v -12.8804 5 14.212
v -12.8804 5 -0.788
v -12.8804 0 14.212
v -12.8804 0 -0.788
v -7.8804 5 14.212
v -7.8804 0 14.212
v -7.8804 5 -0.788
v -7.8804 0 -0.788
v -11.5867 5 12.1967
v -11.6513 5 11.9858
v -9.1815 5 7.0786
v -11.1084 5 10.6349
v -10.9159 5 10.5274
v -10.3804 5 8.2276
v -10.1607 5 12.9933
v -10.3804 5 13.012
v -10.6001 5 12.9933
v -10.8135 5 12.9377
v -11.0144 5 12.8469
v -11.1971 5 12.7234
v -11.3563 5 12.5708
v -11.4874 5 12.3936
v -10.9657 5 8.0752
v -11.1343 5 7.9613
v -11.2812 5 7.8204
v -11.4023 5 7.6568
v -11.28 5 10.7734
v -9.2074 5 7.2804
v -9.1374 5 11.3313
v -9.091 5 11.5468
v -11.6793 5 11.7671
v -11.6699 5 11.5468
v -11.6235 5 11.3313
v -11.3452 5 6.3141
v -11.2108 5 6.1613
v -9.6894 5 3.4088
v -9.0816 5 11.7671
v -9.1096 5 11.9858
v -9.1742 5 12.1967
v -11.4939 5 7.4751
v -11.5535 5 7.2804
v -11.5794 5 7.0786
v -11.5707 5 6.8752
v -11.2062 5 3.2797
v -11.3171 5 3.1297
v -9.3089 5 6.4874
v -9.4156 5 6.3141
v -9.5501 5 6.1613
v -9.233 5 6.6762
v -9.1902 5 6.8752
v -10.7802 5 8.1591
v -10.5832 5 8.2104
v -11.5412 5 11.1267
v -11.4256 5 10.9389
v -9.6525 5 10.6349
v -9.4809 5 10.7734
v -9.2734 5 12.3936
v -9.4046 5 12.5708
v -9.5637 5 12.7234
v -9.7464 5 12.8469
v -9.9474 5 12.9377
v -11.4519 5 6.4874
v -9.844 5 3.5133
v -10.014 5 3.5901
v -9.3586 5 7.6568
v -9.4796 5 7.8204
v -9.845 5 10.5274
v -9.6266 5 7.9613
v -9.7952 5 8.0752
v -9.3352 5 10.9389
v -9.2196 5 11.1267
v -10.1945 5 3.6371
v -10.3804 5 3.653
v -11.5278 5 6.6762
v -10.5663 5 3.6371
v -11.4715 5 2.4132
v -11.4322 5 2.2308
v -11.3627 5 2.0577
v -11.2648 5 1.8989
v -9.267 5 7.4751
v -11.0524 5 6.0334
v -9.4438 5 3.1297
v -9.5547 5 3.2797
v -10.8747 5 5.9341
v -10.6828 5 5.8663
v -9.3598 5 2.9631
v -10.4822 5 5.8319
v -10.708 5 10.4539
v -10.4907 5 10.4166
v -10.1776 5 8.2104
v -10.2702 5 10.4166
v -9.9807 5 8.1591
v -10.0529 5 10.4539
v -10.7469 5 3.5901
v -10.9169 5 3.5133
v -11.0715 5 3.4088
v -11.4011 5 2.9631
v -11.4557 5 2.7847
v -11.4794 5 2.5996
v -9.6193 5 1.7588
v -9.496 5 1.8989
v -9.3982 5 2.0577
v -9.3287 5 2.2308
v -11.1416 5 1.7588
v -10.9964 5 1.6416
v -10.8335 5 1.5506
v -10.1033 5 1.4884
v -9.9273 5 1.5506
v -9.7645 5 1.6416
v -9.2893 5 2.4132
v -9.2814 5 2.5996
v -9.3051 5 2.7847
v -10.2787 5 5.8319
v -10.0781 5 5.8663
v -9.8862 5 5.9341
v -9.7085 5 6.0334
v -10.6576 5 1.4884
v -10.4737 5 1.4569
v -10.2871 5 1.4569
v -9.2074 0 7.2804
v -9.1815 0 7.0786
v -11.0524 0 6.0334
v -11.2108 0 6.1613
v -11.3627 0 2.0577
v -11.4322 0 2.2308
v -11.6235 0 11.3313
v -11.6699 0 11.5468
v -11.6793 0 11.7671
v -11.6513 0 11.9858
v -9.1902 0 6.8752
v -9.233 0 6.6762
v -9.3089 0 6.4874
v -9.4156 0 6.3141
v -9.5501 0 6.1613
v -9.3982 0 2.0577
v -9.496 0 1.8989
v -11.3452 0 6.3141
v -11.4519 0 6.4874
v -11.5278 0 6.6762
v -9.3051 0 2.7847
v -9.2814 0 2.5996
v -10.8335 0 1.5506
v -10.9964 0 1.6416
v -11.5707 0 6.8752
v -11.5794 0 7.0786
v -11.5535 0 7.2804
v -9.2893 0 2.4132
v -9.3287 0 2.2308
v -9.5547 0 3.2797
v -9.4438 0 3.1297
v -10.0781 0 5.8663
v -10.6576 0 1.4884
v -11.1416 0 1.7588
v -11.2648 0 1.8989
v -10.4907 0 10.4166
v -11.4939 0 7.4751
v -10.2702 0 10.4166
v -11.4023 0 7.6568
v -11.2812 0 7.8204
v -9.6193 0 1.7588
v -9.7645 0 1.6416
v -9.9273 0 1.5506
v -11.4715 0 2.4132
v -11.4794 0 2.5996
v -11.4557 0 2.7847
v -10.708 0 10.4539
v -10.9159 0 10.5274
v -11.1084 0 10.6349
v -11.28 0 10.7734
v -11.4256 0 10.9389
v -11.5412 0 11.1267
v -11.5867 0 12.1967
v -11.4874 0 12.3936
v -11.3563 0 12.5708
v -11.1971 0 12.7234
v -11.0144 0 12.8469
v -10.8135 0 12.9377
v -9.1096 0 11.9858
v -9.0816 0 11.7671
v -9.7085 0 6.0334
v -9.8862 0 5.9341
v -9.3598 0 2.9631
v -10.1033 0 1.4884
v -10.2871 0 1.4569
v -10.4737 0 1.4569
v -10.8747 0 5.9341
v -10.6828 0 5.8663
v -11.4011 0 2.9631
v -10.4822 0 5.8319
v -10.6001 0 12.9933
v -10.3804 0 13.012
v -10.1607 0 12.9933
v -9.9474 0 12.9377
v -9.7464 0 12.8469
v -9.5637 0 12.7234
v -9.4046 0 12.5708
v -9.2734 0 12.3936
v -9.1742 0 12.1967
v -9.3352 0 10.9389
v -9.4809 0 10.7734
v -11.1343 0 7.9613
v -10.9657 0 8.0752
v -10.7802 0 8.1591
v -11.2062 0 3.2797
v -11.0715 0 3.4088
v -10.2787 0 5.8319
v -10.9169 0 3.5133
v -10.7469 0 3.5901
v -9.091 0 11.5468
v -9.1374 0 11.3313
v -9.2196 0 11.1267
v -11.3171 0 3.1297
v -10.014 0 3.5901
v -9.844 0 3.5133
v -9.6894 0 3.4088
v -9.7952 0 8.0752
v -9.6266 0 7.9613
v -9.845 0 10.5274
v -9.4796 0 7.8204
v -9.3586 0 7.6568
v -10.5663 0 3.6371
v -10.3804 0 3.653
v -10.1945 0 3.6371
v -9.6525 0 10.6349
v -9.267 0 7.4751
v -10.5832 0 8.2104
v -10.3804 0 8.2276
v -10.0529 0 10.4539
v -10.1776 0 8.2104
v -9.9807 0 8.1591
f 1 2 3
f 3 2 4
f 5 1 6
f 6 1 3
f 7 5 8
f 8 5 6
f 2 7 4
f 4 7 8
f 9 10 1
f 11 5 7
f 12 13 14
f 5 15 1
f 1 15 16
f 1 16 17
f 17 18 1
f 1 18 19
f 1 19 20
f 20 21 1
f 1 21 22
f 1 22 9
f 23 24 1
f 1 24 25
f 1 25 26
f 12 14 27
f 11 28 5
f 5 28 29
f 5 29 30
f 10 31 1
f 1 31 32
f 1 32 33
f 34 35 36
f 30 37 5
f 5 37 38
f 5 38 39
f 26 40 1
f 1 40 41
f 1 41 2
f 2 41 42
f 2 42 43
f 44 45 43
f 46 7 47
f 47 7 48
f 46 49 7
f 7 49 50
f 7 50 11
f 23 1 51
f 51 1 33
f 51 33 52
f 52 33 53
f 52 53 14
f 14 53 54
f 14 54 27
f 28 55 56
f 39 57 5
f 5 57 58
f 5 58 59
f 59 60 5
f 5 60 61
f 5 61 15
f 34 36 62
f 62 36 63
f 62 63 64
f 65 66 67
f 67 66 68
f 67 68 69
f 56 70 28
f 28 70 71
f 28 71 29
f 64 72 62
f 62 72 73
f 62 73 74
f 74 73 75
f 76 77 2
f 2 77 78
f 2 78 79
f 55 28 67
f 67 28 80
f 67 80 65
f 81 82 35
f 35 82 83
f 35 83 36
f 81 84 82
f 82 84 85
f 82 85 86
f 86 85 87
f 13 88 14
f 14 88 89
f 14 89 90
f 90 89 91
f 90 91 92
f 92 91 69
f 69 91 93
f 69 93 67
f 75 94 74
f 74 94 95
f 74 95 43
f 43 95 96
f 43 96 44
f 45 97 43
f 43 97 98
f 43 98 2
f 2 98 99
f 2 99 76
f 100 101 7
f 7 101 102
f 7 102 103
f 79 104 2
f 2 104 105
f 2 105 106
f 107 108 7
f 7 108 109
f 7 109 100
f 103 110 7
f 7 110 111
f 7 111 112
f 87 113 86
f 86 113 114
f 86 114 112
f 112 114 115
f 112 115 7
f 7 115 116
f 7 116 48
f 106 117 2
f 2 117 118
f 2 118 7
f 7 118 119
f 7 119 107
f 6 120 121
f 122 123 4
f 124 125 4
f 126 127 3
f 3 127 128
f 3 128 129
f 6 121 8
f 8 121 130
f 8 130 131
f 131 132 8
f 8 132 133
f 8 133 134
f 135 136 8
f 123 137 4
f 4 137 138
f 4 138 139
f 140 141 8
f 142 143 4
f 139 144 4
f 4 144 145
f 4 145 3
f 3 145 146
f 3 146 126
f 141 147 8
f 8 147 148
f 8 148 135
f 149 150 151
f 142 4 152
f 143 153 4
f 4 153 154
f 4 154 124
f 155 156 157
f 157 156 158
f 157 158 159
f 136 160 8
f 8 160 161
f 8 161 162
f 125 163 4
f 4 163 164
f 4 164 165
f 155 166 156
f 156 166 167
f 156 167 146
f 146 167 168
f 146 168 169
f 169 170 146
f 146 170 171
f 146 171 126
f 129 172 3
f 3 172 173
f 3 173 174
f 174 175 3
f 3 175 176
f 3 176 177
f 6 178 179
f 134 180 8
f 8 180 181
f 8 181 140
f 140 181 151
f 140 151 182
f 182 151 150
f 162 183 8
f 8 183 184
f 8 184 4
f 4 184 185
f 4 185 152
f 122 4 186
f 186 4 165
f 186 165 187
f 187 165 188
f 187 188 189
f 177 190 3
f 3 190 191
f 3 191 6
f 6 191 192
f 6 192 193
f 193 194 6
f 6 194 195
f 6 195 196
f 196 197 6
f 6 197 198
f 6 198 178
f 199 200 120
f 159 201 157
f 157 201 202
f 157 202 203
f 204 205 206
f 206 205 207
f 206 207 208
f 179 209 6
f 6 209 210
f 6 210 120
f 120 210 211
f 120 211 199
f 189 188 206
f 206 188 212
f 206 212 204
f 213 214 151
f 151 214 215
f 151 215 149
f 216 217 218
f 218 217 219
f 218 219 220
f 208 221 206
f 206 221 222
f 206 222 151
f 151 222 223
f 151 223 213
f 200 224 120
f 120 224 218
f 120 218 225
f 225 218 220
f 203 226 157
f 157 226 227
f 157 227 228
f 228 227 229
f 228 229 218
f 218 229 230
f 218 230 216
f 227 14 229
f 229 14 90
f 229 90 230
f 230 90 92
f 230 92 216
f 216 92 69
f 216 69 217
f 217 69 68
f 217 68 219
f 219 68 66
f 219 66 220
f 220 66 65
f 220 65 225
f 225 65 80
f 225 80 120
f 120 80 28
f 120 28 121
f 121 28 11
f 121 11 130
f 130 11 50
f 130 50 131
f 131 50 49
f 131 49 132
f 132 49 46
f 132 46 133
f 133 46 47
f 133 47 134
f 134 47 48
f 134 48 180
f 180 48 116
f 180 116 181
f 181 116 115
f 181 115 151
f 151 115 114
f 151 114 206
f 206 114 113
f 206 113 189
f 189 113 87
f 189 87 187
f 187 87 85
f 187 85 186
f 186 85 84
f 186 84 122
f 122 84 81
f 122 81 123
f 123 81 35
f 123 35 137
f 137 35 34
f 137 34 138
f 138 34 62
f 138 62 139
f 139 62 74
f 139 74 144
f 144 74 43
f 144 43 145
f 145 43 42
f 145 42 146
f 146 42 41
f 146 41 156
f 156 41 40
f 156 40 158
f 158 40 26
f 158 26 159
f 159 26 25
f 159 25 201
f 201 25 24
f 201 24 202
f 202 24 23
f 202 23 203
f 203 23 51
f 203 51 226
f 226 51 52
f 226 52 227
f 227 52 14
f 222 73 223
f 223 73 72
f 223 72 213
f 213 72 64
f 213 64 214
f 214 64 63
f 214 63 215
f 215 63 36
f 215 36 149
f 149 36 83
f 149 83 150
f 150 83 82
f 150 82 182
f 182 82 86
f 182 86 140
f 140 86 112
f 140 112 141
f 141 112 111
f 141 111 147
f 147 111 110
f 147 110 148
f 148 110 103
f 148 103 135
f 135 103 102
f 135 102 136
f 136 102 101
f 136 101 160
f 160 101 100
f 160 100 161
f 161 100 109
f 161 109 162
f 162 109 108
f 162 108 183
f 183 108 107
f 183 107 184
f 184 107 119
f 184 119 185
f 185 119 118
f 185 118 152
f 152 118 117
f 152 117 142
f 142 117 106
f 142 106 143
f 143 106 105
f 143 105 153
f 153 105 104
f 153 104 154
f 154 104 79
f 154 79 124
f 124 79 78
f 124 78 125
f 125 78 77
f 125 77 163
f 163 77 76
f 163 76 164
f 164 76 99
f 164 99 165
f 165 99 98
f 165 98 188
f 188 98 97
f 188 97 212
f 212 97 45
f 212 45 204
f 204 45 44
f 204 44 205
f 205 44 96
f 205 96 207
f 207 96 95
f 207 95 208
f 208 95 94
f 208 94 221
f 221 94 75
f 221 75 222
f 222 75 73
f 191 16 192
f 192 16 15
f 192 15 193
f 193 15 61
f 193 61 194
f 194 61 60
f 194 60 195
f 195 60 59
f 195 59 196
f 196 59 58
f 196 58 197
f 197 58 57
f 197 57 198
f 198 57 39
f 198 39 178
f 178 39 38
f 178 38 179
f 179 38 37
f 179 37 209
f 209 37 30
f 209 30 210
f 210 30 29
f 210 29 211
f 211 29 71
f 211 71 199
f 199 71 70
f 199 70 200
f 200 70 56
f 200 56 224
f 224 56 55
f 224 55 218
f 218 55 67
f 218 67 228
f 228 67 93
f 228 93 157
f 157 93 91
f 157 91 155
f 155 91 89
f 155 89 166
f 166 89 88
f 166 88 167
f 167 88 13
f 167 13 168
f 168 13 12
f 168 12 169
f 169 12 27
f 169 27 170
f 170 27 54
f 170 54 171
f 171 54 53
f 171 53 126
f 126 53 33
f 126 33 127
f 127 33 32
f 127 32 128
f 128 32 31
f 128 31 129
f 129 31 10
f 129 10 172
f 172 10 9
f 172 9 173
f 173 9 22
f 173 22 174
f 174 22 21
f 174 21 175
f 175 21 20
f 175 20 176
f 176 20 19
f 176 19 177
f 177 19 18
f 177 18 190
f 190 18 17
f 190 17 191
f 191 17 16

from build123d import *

# Parameters (mm, degrees)
SKETCH_1_W          = 5
SKETCH_1_H          = 15
EXTRUDE_1_DEPTH     = 5
SKETCH_2_R          = 1.3
SKETCH_2_R_2        = 1.2
SKETCH_2_R_3        = 1.1
CUT_EXTRUDE_1_DEPTH = 5


with BuildPart() as part:
    # 草图1 → 凸台-拉伸1 (new body)
    with BuildSketch(Plane(origin=(0, 0, 0), x_dir=(1, 0, 0), z_dir=(0, 1, 0))):
        with Locations((-10.380434783, -6.711956522)):
            Rectangle(SKETCH_1_W, SKETCH_1_H)
    extrude(amount=EXTRUDE_1_DEPTH)

    # 草图2 → 切除-拉伸1 (cut)
    with BuildSketch(Plane(origin=(0, 5, 0), x_dir=(1, 0, 0), z_dir=(0, 1, 0))):
        with Locations(Location((-10.380434783, -11.711956522, 0), (0, 0, 270))):
            Circle(SKETCH_2_R)
        with Locations(Location((-10.380434783, -7.02762262, 0), (0, 0, 270))):
            Circle(SKETCH_2_R_2)
        with Locations(Location((-10.380434783, -2.552955038, 0), (0, 0, 270))):
            Circle(SKETCH_2_R_3)
    extrude(amount=-CUT_EXTRUDE_1_DEPTH, mode=Mode.SUBTRACT)


solid = part.part
